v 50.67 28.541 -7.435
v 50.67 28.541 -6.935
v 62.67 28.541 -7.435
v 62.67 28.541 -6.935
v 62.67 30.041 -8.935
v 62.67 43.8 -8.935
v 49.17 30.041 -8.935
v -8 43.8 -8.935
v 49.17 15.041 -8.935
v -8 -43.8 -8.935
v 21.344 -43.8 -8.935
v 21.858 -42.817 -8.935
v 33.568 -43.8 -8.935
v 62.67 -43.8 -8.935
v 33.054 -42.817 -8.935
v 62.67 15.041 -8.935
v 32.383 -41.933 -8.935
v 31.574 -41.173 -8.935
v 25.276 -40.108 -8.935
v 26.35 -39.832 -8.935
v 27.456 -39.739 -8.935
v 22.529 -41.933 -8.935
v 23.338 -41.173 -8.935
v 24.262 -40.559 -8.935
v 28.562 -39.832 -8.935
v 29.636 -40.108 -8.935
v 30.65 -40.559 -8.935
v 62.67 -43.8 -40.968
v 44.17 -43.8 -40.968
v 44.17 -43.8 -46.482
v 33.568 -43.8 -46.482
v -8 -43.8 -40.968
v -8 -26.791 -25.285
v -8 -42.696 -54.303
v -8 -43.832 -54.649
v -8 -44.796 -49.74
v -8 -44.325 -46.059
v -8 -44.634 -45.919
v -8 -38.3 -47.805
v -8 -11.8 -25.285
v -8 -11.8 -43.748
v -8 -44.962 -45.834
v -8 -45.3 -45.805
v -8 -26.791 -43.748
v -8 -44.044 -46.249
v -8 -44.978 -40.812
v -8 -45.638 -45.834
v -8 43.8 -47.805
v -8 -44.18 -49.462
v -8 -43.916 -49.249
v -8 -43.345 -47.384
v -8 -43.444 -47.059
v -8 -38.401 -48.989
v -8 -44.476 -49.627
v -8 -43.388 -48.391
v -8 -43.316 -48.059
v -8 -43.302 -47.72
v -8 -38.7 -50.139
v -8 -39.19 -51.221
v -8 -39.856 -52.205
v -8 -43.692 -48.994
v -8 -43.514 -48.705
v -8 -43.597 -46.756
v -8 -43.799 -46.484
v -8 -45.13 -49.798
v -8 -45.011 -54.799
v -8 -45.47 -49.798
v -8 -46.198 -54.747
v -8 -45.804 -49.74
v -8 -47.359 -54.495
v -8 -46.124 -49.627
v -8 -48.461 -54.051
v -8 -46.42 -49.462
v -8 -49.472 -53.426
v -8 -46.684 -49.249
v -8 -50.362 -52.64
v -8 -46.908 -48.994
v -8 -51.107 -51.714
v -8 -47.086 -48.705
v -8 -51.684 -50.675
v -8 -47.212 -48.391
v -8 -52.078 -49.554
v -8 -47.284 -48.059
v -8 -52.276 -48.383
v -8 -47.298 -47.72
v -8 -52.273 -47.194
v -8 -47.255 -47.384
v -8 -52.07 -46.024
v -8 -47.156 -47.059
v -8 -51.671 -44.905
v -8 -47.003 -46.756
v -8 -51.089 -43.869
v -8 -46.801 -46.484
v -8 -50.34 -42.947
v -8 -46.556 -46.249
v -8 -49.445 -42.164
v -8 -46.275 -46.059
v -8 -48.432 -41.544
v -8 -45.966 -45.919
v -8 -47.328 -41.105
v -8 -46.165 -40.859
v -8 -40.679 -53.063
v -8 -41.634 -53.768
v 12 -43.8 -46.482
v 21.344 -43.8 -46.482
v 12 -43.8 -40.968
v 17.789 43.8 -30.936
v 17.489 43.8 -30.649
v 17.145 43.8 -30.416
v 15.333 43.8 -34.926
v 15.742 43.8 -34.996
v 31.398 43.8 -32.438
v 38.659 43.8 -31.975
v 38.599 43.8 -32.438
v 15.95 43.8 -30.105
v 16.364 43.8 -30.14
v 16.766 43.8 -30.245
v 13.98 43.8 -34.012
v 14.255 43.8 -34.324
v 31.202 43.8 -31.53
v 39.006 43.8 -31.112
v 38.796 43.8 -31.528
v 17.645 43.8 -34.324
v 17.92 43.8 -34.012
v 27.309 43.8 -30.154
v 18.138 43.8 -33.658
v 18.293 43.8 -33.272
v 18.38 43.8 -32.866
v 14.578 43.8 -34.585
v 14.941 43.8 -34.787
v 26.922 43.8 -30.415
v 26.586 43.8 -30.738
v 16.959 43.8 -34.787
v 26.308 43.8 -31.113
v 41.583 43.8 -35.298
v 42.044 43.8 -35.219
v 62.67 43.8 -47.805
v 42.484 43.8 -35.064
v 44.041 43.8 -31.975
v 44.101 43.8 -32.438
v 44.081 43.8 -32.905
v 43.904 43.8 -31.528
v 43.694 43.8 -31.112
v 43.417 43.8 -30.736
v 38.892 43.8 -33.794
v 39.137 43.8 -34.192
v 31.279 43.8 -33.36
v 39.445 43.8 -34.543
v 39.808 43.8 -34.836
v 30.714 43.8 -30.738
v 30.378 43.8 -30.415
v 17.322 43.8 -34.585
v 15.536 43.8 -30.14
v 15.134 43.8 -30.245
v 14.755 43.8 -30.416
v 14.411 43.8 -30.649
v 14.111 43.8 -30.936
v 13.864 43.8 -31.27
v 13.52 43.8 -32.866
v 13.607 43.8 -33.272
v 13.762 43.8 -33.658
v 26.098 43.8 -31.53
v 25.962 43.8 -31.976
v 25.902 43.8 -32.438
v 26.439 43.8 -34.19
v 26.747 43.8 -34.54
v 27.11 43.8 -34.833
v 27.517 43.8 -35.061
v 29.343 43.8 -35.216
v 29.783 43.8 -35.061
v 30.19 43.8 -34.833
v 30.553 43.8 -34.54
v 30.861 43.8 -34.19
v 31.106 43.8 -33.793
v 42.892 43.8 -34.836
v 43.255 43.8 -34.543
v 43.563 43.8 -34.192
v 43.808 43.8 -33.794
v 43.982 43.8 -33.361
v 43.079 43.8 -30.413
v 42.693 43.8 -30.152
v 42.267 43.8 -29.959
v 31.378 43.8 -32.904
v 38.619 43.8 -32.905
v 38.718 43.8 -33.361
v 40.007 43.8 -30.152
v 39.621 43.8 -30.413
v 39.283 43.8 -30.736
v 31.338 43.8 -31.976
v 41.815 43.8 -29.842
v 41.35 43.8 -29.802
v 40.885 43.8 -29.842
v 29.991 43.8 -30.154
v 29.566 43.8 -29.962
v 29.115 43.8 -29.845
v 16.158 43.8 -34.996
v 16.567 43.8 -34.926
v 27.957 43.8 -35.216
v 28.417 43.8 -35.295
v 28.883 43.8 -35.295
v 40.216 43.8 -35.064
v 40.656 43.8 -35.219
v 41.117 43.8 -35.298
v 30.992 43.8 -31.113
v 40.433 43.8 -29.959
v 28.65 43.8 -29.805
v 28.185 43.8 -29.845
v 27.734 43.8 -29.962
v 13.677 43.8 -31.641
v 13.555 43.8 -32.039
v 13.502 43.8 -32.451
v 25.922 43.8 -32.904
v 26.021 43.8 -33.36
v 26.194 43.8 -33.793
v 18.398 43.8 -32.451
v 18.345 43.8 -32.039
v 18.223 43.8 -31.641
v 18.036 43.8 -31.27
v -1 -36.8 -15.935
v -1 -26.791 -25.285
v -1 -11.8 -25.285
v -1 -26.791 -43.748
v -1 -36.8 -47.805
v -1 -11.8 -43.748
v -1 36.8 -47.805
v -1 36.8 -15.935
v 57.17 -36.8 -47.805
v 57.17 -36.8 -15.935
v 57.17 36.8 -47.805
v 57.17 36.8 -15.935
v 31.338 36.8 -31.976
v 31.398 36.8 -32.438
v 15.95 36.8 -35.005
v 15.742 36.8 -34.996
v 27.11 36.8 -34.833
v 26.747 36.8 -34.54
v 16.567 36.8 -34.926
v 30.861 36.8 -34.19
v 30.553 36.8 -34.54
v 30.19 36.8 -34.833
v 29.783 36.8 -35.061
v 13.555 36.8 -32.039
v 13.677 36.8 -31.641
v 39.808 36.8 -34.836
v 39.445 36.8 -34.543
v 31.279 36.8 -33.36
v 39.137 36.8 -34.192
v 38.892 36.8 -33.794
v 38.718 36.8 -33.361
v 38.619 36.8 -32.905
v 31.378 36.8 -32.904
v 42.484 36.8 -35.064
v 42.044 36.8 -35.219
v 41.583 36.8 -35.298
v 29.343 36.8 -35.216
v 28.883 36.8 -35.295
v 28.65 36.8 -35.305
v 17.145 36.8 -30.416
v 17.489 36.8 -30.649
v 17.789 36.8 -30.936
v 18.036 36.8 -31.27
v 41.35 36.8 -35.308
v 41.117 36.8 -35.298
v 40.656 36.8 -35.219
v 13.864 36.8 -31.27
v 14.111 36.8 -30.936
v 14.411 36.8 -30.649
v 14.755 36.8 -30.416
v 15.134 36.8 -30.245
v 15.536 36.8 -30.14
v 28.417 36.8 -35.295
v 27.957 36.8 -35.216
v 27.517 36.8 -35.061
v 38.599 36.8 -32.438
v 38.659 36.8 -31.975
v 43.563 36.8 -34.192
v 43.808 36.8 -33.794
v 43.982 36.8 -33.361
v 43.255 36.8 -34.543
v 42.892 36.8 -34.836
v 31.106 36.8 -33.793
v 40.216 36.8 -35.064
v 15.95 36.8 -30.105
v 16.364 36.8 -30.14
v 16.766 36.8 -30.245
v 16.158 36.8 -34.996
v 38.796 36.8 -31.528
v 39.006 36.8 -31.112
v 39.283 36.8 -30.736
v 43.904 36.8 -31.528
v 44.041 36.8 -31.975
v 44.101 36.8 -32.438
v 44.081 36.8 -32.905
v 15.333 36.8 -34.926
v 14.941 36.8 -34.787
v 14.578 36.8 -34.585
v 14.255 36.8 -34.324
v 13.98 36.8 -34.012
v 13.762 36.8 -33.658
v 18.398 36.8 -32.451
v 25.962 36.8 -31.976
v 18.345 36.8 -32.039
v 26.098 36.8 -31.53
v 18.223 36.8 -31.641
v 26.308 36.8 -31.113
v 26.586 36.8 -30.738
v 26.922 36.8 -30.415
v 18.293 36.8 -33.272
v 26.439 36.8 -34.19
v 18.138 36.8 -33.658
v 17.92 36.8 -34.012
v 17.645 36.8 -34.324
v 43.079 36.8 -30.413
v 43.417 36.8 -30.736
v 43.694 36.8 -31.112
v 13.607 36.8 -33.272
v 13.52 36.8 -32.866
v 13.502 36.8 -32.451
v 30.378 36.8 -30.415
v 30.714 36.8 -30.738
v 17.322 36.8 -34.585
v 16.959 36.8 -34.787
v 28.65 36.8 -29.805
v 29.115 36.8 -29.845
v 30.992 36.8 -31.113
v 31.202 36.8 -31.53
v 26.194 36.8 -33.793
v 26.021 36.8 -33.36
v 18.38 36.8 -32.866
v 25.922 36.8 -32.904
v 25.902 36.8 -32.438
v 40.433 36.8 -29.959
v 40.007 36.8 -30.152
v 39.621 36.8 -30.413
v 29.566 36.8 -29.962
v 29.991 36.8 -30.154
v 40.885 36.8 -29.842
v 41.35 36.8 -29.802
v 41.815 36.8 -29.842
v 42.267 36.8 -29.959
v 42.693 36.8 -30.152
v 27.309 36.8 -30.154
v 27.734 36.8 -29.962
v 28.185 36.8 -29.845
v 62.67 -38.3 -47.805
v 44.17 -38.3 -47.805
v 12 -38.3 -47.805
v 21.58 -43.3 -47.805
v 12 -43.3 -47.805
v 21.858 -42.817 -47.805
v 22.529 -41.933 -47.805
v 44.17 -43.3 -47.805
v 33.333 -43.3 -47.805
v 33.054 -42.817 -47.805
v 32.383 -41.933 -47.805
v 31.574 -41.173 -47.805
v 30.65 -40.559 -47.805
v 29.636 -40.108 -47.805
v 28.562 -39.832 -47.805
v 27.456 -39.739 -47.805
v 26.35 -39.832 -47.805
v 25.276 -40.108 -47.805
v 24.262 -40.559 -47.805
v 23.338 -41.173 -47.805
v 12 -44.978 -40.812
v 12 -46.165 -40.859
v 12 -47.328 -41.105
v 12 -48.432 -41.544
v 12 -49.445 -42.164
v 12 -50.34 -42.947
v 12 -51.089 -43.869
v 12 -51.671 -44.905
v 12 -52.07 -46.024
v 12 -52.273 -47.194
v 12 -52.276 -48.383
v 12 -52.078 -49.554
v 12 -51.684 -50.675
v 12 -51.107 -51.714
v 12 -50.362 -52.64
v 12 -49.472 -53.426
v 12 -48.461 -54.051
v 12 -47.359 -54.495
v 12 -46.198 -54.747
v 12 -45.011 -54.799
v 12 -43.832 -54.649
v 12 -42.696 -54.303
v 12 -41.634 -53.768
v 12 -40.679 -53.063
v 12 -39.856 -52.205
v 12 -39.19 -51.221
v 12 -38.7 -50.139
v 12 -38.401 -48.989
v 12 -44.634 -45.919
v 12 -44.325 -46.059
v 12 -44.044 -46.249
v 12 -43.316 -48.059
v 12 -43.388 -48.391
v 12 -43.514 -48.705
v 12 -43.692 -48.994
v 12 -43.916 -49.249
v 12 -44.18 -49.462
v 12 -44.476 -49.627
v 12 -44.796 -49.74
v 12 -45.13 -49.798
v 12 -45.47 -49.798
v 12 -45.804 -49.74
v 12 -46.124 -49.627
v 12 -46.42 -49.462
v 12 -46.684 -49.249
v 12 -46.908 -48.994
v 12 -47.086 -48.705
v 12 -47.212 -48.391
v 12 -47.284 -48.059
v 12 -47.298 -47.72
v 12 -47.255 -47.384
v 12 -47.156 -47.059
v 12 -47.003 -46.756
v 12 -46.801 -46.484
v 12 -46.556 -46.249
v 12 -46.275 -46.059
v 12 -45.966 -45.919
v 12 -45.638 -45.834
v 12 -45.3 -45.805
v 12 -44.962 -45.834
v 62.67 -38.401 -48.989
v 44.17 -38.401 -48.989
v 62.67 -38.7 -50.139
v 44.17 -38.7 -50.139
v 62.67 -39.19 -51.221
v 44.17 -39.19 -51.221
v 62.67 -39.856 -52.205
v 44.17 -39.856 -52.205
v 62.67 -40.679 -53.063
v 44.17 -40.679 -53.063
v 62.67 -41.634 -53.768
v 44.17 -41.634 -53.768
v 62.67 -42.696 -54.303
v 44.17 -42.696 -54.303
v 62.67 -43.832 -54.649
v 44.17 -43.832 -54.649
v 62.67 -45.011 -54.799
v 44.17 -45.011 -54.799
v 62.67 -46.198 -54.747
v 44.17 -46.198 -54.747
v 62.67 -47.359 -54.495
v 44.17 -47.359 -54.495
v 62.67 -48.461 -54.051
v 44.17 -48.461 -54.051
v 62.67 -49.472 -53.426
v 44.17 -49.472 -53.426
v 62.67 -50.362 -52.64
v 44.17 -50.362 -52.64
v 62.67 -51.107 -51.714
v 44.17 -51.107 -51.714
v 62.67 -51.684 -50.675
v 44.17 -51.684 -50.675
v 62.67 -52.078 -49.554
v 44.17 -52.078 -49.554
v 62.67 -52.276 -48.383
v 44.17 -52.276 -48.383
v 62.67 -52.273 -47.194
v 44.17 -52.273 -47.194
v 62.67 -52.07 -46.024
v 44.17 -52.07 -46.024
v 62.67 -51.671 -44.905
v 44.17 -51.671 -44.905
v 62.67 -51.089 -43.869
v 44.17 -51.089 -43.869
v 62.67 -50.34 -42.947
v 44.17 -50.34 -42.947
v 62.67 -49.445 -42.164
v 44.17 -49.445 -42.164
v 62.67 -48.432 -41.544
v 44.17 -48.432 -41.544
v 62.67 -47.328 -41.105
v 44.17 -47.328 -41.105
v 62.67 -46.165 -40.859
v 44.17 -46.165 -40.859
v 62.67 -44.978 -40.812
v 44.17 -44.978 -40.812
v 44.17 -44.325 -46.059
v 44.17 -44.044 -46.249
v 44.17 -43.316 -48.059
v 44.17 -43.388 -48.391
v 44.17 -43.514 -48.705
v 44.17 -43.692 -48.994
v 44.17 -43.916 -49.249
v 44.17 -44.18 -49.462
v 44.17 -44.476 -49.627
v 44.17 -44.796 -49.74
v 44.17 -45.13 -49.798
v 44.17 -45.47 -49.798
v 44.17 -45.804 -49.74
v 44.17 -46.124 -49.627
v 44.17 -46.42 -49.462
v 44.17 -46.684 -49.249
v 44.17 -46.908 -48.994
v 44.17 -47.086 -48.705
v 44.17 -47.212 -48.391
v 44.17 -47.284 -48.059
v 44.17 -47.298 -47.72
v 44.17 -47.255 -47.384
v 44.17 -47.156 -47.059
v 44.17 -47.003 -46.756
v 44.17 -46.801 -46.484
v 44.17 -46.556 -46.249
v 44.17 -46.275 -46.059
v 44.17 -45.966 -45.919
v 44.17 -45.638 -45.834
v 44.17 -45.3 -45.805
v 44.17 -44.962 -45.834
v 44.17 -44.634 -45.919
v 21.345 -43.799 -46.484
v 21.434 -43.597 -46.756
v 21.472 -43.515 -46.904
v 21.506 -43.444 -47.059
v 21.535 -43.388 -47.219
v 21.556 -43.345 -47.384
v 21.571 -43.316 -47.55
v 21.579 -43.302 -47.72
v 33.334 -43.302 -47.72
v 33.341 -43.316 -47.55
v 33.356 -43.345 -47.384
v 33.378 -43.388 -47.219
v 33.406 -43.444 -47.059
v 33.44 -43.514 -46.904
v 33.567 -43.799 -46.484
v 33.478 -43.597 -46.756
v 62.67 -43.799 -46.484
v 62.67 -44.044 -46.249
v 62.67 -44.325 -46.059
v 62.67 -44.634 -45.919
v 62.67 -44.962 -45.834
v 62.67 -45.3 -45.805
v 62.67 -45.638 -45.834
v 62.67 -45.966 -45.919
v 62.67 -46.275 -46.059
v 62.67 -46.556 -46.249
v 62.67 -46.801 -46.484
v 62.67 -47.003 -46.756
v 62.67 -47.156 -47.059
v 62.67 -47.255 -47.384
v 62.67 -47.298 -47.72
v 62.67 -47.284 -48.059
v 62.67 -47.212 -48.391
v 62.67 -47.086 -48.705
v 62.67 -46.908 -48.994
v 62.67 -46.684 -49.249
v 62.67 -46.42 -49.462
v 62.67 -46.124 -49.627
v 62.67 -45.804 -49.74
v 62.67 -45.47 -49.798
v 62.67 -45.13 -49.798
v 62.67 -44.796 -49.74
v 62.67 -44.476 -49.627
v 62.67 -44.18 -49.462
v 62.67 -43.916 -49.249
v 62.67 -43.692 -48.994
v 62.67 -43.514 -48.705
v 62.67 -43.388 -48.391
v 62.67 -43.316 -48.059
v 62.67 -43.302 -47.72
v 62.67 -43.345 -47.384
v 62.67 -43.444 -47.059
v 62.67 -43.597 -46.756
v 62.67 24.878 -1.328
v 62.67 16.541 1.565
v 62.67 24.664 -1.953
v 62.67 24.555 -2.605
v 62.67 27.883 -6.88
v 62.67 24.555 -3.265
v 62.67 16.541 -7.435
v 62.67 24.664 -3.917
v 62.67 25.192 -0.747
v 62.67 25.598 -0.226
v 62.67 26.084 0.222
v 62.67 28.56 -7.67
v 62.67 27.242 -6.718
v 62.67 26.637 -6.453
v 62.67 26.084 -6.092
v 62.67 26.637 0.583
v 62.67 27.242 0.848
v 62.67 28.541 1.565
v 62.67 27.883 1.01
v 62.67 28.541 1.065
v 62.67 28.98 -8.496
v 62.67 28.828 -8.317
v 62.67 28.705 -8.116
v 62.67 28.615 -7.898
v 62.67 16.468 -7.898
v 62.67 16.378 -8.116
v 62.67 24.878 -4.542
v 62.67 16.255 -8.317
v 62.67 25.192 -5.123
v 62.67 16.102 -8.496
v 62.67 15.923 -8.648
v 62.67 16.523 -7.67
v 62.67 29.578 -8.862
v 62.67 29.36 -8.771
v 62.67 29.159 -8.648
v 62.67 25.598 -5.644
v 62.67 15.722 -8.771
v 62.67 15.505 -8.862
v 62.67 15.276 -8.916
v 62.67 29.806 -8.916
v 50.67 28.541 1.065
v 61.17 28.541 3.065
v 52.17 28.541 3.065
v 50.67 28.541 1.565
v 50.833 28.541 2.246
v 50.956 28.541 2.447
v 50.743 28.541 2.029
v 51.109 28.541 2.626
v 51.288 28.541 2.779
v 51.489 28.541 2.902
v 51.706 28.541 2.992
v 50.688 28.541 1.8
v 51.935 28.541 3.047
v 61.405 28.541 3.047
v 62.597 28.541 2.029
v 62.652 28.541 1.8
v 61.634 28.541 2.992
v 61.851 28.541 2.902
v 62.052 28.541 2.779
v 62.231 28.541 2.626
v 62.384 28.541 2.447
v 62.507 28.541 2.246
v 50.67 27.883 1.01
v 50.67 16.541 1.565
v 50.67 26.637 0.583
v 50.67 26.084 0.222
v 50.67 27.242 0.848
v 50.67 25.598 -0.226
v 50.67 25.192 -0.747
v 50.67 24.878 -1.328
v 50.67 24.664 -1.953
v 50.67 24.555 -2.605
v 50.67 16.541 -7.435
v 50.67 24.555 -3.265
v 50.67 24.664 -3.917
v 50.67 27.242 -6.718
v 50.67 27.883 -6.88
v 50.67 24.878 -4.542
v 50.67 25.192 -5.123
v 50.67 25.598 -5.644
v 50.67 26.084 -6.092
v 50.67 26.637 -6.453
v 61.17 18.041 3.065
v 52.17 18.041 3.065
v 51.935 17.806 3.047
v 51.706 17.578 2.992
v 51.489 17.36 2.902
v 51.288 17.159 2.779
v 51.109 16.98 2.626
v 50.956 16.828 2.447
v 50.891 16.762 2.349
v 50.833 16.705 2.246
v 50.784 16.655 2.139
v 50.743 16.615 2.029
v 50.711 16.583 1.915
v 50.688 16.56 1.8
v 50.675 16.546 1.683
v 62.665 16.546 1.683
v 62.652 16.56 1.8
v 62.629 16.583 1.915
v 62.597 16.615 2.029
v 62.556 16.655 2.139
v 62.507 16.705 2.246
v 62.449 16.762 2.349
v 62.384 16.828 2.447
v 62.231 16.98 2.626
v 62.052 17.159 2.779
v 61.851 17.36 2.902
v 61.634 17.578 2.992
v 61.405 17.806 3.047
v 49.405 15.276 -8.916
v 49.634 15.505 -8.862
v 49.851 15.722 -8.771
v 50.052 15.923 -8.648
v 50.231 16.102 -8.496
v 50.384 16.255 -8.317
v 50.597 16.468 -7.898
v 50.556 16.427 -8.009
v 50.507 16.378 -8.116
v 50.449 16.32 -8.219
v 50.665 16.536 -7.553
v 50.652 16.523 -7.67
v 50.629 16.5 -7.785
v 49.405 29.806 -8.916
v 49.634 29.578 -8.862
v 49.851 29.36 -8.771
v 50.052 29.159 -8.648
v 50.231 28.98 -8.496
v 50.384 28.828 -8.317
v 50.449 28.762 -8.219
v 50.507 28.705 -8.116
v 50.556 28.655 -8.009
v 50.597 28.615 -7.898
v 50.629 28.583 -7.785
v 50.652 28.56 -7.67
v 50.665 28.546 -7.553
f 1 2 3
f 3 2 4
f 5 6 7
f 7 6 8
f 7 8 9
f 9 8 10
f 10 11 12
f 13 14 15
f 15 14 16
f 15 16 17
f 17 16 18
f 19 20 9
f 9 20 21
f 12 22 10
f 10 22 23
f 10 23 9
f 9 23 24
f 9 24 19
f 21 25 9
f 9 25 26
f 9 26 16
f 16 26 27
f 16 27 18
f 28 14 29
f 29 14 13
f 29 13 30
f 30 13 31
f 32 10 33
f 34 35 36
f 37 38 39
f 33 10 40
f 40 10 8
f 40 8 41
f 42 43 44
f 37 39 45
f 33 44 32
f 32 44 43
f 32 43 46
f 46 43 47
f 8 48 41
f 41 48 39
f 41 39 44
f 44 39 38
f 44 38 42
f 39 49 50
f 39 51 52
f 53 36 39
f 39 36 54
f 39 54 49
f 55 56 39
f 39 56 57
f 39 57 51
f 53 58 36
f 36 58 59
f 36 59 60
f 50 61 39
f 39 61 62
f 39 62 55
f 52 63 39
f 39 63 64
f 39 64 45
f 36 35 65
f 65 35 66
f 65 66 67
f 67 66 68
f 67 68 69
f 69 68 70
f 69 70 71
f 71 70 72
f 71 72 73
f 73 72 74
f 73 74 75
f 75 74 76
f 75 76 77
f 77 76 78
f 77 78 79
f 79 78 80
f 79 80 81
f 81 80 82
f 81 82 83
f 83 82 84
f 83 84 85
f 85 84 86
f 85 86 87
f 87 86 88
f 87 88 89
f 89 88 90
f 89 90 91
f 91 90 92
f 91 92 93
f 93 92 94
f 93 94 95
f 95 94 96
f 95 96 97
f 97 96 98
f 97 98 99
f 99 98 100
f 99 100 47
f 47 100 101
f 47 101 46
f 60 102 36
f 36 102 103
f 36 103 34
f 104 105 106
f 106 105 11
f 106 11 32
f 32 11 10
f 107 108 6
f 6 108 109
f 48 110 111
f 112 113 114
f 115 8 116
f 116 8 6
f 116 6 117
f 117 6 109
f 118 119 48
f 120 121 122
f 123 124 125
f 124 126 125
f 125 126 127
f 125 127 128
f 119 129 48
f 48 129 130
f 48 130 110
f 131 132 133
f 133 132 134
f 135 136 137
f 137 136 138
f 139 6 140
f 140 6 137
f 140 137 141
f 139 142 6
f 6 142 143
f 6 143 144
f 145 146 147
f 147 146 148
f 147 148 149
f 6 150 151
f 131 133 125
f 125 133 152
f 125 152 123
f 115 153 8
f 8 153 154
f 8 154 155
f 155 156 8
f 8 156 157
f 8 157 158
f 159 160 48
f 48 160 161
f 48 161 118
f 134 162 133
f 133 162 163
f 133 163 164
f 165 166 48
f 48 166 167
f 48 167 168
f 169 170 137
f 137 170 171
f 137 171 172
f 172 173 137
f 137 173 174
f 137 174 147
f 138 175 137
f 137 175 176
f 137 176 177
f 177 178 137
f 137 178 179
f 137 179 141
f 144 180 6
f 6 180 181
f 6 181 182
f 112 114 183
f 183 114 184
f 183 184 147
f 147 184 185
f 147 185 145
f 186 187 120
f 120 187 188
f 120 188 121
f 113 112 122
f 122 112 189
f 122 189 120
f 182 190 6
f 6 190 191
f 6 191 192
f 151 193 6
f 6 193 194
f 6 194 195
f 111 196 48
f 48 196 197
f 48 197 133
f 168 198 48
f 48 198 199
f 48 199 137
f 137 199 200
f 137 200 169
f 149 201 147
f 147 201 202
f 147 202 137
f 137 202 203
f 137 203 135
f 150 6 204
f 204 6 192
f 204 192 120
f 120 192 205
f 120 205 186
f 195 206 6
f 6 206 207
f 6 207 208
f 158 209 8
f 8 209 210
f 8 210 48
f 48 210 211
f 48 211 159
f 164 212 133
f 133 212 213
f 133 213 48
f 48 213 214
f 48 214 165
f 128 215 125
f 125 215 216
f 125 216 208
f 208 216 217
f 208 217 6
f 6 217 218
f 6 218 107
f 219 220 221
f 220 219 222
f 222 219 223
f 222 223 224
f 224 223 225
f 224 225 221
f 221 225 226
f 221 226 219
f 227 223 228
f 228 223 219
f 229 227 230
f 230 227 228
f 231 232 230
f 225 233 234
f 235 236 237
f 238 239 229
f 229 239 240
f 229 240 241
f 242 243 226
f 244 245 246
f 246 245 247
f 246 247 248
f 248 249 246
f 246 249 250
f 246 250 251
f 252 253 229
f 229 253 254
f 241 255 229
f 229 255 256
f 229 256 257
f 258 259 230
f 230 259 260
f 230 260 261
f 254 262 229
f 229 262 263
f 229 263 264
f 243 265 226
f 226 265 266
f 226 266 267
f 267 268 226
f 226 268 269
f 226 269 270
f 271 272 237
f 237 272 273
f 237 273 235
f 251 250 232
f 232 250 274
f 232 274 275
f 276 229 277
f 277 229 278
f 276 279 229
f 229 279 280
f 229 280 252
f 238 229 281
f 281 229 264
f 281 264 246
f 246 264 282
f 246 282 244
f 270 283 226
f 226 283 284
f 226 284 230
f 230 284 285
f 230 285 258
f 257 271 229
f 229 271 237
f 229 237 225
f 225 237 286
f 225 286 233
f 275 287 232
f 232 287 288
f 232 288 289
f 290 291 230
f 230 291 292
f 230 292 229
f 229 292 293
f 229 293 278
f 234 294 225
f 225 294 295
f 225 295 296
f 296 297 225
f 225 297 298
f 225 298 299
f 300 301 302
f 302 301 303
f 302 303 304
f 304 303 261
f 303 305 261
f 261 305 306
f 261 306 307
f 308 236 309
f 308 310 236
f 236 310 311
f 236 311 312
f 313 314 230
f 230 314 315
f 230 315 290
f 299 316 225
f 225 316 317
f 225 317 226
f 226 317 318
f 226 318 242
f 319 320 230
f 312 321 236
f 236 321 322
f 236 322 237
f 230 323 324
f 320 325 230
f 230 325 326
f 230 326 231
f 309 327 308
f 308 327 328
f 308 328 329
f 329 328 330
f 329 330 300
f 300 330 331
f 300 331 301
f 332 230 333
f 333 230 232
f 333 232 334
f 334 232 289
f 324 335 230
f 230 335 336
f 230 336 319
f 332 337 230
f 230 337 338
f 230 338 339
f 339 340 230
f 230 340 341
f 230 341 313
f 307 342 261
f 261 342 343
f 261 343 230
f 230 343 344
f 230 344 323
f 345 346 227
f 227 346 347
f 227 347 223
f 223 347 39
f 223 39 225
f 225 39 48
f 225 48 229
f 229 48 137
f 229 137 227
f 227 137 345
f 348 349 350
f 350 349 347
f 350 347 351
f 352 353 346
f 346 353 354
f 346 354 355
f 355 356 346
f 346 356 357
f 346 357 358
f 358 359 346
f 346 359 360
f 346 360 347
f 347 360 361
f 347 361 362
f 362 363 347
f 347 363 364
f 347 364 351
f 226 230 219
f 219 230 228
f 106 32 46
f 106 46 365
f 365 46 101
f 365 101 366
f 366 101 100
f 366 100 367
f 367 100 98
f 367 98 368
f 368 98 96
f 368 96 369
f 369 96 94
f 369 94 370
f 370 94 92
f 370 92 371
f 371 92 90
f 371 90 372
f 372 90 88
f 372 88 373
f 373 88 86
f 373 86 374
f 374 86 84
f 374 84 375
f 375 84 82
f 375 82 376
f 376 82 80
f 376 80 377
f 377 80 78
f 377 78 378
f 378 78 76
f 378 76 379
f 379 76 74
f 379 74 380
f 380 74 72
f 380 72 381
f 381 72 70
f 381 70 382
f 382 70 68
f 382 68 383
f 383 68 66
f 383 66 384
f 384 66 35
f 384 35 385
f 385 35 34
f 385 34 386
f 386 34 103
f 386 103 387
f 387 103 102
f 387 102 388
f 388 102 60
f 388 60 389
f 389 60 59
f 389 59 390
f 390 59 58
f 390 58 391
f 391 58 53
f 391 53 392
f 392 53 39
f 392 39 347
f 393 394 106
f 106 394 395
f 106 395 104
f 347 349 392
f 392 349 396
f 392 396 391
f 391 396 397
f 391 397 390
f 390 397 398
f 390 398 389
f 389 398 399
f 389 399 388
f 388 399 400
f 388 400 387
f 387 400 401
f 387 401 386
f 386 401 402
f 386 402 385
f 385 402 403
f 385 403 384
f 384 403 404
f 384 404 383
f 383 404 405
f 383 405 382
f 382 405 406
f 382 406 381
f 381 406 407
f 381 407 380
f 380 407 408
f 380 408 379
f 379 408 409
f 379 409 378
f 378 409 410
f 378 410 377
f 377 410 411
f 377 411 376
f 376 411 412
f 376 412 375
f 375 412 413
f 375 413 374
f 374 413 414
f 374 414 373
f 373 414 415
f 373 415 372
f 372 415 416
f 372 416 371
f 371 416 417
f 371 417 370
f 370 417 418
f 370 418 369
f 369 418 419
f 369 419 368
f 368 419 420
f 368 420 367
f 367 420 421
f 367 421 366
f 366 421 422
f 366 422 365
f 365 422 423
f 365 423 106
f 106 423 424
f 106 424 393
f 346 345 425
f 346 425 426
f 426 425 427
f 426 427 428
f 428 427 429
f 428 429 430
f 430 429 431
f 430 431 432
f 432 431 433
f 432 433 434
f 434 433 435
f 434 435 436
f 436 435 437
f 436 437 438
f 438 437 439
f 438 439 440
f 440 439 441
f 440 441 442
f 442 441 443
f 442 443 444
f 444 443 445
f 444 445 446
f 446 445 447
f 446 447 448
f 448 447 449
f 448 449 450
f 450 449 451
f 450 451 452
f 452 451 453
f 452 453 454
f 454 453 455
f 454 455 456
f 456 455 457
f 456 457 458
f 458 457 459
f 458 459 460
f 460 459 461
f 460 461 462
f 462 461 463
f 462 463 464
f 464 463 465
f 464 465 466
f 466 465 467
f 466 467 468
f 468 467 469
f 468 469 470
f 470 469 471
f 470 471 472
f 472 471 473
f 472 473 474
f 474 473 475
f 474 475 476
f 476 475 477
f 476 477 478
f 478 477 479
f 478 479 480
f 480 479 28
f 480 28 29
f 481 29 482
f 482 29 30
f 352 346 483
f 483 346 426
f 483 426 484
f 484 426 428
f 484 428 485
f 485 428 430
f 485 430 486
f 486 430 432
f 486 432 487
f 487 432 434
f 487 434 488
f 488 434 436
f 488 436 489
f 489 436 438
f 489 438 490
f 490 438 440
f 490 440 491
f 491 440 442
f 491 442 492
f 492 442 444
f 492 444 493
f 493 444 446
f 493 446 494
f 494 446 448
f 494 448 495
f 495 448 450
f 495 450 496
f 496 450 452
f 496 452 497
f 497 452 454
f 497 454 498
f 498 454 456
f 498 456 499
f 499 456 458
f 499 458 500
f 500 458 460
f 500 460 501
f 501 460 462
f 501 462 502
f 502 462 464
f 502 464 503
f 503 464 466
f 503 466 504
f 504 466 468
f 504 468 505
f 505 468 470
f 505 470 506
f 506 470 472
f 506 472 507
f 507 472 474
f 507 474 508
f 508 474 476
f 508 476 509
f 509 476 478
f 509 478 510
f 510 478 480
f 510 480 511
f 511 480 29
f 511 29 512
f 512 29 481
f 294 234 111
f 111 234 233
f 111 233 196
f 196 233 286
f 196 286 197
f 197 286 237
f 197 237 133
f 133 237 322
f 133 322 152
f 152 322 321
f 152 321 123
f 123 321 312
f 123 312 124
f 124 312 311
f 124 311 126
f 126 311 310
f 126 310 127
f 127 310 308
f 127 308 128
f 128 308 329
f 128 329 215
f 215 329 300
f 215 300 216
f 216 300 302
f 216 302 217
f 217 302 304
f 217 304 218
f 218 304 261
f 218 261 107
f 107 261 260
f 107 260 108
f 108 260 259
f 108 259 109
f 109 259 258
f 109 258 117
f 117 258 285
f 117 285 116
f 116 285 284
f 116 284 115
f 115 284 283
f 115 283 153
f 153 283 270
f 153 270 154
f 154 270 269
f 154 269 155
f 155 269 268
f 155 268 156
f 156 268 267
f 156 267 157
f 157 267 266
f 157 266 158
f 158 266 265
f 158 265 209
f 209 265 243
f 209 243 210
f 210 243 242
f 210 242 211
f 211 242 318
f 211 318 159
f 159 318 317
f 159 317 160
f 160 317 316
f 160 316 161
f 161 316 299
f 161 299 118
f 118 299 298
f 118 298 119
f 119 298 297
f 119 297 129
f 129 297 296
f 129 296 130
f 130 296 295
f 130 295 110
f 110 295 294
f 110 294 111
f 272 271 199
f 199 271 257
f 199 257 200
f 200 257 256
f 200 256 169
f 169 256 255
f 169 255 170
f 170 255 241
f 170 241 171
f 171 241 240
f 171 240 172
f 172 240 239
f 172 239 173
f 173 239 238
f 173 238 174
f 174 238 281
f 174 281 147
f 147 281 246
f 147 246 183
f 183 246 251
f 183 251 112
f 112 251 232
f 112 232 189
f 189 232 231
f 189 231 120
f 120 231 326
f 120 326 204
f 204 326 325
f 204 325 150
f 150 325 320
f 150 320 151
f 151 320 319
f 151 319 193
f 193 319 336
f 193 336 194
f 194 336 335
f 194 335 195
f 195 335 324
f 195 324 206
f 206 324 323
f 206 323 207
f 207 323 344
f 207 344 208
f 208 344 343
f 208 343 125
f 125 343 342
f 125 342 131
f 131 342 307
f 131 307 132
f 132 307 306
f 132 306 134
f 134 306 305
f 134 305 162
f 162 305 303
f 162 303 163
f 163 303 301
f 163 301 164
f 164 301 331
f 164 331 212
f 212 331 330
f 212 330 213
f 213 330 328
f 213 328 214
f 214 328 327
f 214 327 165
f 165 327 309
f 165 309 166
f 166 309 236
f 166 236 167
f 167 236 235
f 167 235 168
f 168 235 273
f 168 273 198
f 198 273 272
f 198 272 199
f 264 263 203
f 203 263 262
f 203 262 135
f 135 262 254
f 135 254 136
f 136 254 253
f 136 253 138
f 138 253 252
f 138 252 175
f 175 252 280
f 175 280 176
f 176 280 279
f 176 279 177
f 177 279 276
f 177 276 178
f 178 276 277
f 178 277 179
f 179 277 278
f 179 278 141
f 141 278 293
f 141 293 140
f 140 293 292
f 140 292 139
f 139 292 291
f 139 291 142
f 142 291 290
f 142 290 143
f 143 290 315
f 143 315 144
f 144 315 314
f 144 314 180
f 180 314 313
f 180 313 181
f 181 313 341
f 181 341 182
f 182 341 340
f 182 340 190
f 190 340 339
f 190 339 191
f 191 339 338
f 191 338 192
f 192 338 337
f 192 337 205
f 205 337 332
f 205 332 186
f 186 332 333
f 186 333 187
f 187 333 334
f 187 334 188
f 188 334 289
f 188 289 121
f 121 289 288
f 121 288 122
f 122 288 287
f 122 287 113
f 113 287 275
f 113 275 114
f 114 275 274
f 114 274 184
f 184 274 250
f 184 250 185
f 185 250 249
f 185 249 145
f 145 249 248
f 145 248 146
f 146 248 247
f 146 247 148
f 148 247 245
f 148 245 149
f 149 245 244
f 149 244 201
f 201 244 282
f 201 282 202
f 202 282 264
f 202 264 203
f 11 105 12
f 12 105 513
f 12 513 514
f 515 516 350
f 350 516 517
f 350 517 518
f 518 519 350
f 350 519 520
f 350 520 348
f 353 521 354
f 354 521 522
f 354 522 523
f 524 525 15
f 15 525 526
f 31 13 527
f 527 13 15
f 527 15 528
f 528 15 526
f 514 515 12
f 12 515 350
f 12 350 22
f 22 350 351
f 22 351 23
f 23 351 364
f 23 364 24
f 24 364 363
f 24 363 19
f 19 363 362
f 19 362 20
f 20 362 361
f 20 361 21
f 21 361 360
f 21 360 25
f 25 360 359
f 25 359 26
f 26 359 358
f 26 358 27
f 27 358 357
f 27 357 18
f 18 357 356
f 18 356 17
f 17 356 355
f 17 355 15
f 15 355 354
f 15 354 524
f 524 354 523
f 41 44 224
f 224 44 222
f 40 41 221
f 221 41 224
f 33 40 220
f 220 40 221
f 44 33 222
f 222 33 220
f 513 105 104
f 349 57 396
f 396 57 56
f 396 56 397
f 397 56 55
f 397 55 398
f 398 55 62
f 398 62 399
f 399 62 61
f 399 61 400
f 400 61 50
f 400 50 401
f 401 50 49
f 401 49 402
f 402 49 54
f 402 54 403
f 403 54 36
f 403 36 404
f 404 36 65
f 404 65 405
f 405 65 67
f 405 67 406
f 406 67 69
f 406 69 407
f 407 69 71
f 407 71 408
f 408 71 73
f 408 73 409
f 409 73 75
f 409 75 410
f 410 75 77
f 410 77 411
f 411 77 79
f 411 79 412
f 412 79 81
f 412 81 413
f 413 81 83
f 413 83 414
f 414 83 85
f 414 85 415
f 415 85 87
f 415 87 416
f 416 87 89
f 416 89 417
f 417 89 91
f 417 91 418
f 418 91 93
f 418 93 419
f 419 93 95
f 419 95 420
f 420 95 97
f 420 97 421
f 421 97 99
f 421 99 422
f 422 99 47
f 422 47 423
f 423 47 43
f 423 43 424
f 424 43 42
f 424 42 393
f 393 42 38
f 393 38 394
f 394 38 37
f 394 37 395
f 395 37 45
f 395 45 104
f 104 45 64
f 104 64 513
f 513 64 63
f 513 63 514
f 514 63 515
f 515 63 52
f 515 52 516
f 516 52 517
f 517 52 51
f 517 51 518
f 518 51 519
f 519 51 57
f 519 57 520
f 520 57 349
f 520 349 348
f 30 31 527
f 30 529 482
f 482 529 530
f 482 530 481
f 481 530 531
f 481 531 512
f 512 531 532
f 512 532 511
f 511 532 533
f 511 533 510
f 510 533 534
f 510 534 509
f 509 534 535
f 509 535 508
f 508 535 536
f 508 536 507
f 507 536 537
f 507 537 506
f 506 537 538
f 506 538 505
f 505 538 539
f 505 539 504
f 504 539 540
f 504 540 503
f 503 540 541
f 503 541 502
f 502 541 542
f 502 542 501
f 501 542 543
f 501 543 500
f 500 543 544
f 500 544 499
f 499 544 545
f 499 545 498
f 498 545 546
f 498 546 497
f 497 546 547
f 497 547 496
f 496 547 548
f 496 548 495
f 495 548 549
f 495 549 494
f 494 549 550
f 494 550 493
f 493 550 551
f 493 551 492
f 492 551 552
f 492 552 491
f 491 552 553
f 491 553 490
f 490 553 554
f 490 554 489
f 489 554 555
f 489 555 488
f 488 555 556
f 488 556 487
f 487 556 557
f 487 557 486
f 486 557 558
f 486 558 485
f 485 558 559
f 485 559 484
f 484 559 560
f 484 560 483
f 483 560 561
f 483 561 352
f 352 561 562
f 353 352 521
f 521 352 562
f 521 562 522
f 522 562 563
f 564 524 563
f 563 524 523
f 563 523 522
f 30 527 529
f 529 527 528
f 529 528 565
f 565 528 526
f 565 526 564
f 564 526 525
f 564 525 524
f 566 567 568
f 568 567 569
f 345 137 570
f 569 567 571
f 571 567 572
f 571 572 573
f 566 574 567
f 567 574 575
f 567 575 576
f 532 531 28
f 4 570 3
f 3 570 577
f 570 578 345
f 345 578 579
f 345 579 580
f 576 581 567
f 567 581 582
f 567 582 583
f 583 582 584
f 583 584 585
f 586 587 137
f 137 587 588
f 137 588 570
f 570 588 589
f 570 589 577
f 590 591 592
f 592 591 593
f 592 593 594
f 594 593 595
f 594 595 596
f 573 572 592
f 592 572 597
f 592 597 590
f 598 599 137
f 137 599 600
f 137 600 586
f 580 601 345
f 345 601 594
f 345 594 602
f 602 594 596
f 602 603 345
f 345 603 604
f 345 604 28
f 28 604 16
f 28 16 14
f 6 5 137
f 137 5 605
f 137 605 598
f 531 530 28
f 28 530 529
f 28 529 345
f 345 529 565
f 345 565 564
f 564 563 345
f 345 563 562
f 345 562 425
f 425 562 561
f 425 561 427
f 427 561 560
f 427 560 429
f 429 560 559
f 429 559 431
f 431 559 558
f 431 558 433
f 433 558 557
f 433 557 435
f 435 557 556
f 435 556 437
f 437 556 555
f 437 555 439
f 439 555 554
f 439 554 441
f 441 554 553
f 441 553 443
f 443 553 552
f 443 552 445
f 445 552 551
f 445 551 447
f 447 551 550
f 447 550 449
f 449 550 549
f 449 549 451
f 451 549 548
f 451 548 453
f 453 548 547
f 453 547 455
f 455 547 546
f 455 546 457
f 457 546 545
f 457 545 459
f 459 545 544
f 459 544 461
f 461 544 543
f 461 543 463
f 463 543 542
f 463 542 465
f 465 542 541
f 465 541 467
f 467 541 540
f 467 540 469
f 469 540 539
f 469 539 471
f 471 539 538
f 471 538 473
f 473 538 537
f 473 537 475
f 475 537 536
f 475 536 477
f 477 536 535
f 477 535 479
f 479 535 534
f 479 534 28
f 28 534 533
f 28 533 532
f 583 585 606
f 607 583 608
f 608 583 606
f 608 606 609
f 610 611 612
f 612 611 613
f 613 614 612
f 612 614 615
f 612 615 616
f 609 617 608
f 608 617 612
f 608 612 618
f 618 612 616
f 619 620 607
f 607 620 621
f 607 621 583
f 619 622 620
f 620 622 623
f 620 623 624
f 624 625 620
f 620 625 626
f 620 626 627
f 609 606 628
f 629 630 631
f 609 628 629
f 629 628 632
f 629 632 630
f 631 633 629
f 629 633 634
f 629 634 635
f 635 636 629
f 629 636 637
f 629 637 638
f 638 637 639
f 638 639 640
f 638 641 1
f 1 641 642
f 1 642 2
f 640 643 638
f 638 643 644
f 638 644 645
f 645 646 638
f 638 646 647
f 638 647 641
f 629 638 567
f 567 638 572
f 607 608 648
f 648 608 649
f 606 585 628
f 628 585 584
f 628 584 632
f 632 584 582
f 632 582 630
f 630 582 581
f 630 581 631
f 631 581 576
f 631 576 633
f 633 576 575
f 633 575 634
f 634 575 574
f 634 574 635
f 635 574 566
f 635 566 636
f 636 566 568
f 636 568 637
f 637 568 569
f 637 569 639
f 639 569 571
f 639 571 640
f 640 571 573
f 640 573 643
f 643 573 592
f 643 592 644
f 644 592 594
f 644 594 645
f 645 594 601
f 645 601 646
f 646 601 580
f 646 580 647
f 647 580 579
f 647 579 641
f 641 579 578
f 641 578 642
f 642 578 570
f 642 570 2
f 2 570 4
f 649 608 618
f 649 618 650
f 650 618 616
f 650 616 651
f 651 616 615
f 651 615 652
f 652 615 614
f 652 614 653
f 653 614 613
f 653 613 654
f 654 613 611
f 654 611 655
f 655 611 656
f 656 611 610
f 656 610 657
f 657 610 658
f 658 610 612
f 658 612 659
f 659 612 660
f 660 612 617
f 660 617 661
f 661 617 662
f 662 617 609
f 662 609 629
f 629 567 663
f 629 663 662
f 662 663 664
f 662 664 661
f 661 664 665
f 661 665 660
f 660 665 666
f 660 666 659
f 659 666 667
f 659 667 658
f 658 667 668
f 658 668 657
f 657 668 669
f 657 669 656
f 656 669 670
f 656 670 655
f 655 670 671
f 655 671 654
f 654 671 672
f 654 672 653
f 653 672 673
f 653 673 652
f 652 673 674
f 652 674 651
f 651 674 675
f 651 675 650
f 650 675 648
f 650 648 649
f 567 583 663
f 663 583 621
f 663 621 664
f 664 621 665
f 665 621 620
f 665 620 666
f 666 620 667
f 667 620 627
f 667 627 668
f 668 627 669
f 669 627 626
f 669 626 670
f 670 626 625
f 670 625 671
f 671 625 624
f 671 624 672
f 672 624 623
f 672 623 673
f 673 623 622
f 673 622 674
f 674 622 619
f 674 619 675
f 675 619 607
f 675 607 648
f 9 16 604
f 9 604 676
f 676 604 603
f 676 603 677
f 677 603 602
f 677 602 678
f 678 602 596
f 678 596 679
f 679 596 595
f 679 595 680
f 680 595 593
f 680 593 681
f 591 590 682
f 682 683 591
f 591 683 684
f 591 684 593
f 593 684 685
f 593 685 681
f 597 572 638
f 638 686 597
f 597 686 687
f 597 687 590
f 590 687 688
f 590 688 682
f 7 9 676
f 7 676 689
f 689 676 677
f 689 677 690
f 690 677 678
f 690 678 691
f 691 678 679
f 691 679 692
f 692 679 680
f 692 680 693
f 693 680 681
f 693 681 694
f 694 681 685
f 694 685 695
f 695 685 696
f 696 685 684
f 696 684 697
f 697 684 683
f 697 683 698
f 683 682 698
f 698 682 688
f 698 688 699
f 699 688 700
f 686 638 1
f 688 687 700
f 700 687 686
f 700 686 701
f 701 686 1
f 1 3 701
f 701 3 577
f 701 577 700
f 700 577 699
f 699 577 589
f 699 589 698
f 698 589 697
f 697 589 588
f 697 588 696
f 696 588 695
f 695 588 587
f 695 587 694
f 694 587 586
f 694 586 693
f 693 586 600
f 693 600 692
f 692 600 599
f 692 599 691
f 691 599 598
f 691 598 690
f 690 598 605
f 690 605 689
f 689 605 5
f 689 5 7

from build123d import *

# Parameters (mm, degrees)
SKETCH1_W           = 31.87
SKETCH1_H           = 71.6
BOSS_EXTRUDE1_DEPTH = 56.17
SKETCH2_W           = 72.17
SKETCH2_H           = 87.6
SKETCH2_W_2         = 58.17
SKETCH2_H_2         = 73.6
BOSS_EXTRUDE4_DEPTH = 31.87
SKETCH5_W           = 72.17
SKETCH5_H           = 87.6
BOSS_EXTRUDE5_DEPTH = 7
SKETCH6_W           = 24.87
SKETCH6_H           = 71.6
CUT_EXTRUDE2_DEPTH  = 92.222513257
SKETCH7_R           = 7
BOSS_EXTRUDE6_DEPTH = 20
BOSS_EXTRUDE7_START = -20
SKETCH8_R           = 7
BOSS_EXTRUDE7_DEPTH = 20
SKETCH9_R           = 2.753
SKETCH9_R_2         = 2.75
SKETCH9_R_3         = 2.45
CUT_EXTRUDE3_DEPTH  = 20
CUT_EXTRUDE4_DEPTH  = 40
SKETCH11_W          = 18.463529731
SKETCH11_H          = 14.991415607
CUT_EXTRUDE5_DEPTH  = 10
SKETCH12_R          = 2
CUT_EXTRUDE6_DEPTH  = 105.629761182
SKETCH13_W          = 1.5
SKETCH13_H          = 49.254465911
CUT_EXTRUDE7_DEPTH  = 128.892872897
SKETCH14_W          = 12
SKETCH14_H          = 12
BOSS_EXTRUDE8_DEPTH = 12
SKETCH15_R          = 4
CUT_EXTRUDE8_DEPTH  = 12
FILLET1_R           = 1.5


with BuildPart() as part:
    # Sketch1 → Boss-Extrude1 (new body)
    with BuildSketch(Plane(origin=(0, 0, 0), x_dir=(0, 0, -1), z_dir=(1, 0, 0))):
        Rectangle(SKETCH1_W, SKETCH1_H)
    extrude(amount=BOSS_EXTRUDE1_DEPTH)



with BuildPart() as body_2:
    # Sketch2 → Boss-Extrude4 (new body)
    with BuildSketch(Plane(origin=(0, 0, -15.935), x_dir=(-1, 0, 0), z_dir=(0, 0, -1))):
        with Locations((-28.085, 0)):
            Rectangle(SKETCH2_W, SKETCH2_H)
        with Locations((-28.085, 0)):
            Rectangle(SKETCH2_W_2, SKETCH2_H_2, mode=Mode.SUBTRACT)
    extrude(amount=BOSS_EXTRUDE4_DEPTH)


with BuildPart() as part_1:
    add(part.part)

    add(body_2.part)  # Boss-Extrude5 merges body 2
    # Sketch5 → Boss-Extrude5 (add)
    with BuildSketch(Plane.XY.offset(-15.935)):
        with Locations((28.085, 0)):
            Rectangle(SKETCH5_W, SKETCH5_H)
    extrude(amount=BOSS_EXTRUDE5_DEPTH)

    # Sketch6 → Cut-Extrude2 (cut, through all)
    with BuildSketch(Plane.ZY):
        with Locations((3.5, 0)):
            Rectangle(SKETCH6_W, SKETCH6_H)
    extrude(amount=-CUT_EXTRUDE2_DEPTH, mode=Mode.SUBTRACT)

    # Sketch7 → Boss-Extrude6 (add)
    with BuildSketch(Plane.ZY.offset(8)):
        with Locations((-47.805, -45.3)):
            Circle(SKETCH7_R)
    extrude(amount=-BOSS_EXTRUDE6_DEPTH)

    # Sketch8 → Boss-Extrude7 (add)
    with BuildSketch(Plane(origin=(64.17, 0, 0), x_dir=(0, 0, -1), z_dir=(1, 0, 0)).offset(BOSS_EXTRUDE7_START)):
        with Locations((47.805, -45.3)):
            Circle(SKETCH8_R)
    extrude(amount=BOSS_EXTRUDE7_DEPTH)

    # Sketch9 → Cut-Extrude3 (cut)
    with BuildSketch(Plane(origin=(0, 43.8, 0), x_dir=(1, 0, 0), z_dir=(0, 1, 0))):
        with Locations(Location((41.35, 32.555, 0), (0, 0, 270))):
            Circle(SKETCH9_R)
        with Locations(Location((28.65, 32.555, 0), (0, 0, 270))):
            Circle(SKETCH9_R_2)
        with Locations(Location((15.95, 32.555, 0), (0, 0, 270))):
            Circle(SKETCH9_R_3)
    extrude(amount=-CUT_EXTRUDE3_DEPTH, mode=Mode.SUBTRACT)

    # Sketch10 → Cut-Extrude4 (cut)
    with BuildSketch(Plane(origin=(0, 0, -47.805), x_dir=(-1, 0, 0), z_dir=(0, 0, -1))):
        with BuildLine():
            Line((-33.567827079, -43.8), (-21.344405358, -43.8))
            ThreePointArc((-21.344405358, -43.8), (-27.456116219, -39.739220659), (-33.567827079, -43.8))
        make_face()
    extrude(amount=-CUT_EXTRUDE4_DEPTH, mode=Mode.SUBTRACT)

    # Sketch11 → Cut-Extrude5 (cut)
    with BuildSketch(Plane.ZY.offset(8)):
        with Locations((-34.516340539, -19.295707804)):
            Rectangle(SKETCH11_W, SKETCH11_H)
    extrude(amount=-CUT_EXTRUDE5_DEPTH, mode=Mode.SUBTRACT)

    # Sketch12 → Cut-Extrude6 (cut, through all)
    with BuildSketch(Plane.ZY.offset(8)):
        with Locations((-47.805, -45.3)):
            Circle(SKETCH12_R)
    extrude(amount=-CUT_EXTRUDE6_DEPTH, mode=Mode.SUBTRACT)

    # Sketch13 → Cut-Extrude7 (cut, through all)
    with BuildSketch(Plane(origin=(0, 43.8, 0), x_dir=(1, 0, 0), z_dir=(0, 1, 0))):
        with Locations((63.42, 33.562232956)):
            Rectangle(SKETCH13_W, SKETCH13_H)
    extrude(amount=-CUT_EXTRUDE7_DEPTH, mode=Mode.SUBTRACT)

    # Sketch14 → Boss-Extrude8 (add)
    with BuildSketch(Plane.XY.offset(-8.935)):
        with Locations((56.67, 22.541140532)):
            Rectangle(SKETCH14_W, SKETCH14_H)
    extrude(amount=BOSS_EXTRUDE8_DEPTH)

    # Sketch15 → Cut-Extrude8 (cut)
    with BuildSketch(Plane(origin=(62.67, 0, 0), x_dir=(0, 0, -1), z_dir=(1, 0, 0))):
        with Locations((2.935, 28.541140532)):
            Circle(SKETCH15_R)
    extrude(amount=-CUT_EXTRUDE8_DEPTH, mode=Mode.SUBTRACT)

    # Fillet1
    fillet1_edges = [part_1.edges().sort_by_distance(p)[0] for p in [
        (56.67, 28.541140532, -8.935),
        (50.67, 22.541140532, -8.935),
        (56.67, 16.541140532, -8.935),
        (62.67, 22.541140532, 3.065),
        (50.67, 22.541140532, 3.065),
        (56.67, 16.541140532, 3.065),
    ]]
    fillet(fillet1_edges, radius=FILLET1_R)


solid = part_1.part
